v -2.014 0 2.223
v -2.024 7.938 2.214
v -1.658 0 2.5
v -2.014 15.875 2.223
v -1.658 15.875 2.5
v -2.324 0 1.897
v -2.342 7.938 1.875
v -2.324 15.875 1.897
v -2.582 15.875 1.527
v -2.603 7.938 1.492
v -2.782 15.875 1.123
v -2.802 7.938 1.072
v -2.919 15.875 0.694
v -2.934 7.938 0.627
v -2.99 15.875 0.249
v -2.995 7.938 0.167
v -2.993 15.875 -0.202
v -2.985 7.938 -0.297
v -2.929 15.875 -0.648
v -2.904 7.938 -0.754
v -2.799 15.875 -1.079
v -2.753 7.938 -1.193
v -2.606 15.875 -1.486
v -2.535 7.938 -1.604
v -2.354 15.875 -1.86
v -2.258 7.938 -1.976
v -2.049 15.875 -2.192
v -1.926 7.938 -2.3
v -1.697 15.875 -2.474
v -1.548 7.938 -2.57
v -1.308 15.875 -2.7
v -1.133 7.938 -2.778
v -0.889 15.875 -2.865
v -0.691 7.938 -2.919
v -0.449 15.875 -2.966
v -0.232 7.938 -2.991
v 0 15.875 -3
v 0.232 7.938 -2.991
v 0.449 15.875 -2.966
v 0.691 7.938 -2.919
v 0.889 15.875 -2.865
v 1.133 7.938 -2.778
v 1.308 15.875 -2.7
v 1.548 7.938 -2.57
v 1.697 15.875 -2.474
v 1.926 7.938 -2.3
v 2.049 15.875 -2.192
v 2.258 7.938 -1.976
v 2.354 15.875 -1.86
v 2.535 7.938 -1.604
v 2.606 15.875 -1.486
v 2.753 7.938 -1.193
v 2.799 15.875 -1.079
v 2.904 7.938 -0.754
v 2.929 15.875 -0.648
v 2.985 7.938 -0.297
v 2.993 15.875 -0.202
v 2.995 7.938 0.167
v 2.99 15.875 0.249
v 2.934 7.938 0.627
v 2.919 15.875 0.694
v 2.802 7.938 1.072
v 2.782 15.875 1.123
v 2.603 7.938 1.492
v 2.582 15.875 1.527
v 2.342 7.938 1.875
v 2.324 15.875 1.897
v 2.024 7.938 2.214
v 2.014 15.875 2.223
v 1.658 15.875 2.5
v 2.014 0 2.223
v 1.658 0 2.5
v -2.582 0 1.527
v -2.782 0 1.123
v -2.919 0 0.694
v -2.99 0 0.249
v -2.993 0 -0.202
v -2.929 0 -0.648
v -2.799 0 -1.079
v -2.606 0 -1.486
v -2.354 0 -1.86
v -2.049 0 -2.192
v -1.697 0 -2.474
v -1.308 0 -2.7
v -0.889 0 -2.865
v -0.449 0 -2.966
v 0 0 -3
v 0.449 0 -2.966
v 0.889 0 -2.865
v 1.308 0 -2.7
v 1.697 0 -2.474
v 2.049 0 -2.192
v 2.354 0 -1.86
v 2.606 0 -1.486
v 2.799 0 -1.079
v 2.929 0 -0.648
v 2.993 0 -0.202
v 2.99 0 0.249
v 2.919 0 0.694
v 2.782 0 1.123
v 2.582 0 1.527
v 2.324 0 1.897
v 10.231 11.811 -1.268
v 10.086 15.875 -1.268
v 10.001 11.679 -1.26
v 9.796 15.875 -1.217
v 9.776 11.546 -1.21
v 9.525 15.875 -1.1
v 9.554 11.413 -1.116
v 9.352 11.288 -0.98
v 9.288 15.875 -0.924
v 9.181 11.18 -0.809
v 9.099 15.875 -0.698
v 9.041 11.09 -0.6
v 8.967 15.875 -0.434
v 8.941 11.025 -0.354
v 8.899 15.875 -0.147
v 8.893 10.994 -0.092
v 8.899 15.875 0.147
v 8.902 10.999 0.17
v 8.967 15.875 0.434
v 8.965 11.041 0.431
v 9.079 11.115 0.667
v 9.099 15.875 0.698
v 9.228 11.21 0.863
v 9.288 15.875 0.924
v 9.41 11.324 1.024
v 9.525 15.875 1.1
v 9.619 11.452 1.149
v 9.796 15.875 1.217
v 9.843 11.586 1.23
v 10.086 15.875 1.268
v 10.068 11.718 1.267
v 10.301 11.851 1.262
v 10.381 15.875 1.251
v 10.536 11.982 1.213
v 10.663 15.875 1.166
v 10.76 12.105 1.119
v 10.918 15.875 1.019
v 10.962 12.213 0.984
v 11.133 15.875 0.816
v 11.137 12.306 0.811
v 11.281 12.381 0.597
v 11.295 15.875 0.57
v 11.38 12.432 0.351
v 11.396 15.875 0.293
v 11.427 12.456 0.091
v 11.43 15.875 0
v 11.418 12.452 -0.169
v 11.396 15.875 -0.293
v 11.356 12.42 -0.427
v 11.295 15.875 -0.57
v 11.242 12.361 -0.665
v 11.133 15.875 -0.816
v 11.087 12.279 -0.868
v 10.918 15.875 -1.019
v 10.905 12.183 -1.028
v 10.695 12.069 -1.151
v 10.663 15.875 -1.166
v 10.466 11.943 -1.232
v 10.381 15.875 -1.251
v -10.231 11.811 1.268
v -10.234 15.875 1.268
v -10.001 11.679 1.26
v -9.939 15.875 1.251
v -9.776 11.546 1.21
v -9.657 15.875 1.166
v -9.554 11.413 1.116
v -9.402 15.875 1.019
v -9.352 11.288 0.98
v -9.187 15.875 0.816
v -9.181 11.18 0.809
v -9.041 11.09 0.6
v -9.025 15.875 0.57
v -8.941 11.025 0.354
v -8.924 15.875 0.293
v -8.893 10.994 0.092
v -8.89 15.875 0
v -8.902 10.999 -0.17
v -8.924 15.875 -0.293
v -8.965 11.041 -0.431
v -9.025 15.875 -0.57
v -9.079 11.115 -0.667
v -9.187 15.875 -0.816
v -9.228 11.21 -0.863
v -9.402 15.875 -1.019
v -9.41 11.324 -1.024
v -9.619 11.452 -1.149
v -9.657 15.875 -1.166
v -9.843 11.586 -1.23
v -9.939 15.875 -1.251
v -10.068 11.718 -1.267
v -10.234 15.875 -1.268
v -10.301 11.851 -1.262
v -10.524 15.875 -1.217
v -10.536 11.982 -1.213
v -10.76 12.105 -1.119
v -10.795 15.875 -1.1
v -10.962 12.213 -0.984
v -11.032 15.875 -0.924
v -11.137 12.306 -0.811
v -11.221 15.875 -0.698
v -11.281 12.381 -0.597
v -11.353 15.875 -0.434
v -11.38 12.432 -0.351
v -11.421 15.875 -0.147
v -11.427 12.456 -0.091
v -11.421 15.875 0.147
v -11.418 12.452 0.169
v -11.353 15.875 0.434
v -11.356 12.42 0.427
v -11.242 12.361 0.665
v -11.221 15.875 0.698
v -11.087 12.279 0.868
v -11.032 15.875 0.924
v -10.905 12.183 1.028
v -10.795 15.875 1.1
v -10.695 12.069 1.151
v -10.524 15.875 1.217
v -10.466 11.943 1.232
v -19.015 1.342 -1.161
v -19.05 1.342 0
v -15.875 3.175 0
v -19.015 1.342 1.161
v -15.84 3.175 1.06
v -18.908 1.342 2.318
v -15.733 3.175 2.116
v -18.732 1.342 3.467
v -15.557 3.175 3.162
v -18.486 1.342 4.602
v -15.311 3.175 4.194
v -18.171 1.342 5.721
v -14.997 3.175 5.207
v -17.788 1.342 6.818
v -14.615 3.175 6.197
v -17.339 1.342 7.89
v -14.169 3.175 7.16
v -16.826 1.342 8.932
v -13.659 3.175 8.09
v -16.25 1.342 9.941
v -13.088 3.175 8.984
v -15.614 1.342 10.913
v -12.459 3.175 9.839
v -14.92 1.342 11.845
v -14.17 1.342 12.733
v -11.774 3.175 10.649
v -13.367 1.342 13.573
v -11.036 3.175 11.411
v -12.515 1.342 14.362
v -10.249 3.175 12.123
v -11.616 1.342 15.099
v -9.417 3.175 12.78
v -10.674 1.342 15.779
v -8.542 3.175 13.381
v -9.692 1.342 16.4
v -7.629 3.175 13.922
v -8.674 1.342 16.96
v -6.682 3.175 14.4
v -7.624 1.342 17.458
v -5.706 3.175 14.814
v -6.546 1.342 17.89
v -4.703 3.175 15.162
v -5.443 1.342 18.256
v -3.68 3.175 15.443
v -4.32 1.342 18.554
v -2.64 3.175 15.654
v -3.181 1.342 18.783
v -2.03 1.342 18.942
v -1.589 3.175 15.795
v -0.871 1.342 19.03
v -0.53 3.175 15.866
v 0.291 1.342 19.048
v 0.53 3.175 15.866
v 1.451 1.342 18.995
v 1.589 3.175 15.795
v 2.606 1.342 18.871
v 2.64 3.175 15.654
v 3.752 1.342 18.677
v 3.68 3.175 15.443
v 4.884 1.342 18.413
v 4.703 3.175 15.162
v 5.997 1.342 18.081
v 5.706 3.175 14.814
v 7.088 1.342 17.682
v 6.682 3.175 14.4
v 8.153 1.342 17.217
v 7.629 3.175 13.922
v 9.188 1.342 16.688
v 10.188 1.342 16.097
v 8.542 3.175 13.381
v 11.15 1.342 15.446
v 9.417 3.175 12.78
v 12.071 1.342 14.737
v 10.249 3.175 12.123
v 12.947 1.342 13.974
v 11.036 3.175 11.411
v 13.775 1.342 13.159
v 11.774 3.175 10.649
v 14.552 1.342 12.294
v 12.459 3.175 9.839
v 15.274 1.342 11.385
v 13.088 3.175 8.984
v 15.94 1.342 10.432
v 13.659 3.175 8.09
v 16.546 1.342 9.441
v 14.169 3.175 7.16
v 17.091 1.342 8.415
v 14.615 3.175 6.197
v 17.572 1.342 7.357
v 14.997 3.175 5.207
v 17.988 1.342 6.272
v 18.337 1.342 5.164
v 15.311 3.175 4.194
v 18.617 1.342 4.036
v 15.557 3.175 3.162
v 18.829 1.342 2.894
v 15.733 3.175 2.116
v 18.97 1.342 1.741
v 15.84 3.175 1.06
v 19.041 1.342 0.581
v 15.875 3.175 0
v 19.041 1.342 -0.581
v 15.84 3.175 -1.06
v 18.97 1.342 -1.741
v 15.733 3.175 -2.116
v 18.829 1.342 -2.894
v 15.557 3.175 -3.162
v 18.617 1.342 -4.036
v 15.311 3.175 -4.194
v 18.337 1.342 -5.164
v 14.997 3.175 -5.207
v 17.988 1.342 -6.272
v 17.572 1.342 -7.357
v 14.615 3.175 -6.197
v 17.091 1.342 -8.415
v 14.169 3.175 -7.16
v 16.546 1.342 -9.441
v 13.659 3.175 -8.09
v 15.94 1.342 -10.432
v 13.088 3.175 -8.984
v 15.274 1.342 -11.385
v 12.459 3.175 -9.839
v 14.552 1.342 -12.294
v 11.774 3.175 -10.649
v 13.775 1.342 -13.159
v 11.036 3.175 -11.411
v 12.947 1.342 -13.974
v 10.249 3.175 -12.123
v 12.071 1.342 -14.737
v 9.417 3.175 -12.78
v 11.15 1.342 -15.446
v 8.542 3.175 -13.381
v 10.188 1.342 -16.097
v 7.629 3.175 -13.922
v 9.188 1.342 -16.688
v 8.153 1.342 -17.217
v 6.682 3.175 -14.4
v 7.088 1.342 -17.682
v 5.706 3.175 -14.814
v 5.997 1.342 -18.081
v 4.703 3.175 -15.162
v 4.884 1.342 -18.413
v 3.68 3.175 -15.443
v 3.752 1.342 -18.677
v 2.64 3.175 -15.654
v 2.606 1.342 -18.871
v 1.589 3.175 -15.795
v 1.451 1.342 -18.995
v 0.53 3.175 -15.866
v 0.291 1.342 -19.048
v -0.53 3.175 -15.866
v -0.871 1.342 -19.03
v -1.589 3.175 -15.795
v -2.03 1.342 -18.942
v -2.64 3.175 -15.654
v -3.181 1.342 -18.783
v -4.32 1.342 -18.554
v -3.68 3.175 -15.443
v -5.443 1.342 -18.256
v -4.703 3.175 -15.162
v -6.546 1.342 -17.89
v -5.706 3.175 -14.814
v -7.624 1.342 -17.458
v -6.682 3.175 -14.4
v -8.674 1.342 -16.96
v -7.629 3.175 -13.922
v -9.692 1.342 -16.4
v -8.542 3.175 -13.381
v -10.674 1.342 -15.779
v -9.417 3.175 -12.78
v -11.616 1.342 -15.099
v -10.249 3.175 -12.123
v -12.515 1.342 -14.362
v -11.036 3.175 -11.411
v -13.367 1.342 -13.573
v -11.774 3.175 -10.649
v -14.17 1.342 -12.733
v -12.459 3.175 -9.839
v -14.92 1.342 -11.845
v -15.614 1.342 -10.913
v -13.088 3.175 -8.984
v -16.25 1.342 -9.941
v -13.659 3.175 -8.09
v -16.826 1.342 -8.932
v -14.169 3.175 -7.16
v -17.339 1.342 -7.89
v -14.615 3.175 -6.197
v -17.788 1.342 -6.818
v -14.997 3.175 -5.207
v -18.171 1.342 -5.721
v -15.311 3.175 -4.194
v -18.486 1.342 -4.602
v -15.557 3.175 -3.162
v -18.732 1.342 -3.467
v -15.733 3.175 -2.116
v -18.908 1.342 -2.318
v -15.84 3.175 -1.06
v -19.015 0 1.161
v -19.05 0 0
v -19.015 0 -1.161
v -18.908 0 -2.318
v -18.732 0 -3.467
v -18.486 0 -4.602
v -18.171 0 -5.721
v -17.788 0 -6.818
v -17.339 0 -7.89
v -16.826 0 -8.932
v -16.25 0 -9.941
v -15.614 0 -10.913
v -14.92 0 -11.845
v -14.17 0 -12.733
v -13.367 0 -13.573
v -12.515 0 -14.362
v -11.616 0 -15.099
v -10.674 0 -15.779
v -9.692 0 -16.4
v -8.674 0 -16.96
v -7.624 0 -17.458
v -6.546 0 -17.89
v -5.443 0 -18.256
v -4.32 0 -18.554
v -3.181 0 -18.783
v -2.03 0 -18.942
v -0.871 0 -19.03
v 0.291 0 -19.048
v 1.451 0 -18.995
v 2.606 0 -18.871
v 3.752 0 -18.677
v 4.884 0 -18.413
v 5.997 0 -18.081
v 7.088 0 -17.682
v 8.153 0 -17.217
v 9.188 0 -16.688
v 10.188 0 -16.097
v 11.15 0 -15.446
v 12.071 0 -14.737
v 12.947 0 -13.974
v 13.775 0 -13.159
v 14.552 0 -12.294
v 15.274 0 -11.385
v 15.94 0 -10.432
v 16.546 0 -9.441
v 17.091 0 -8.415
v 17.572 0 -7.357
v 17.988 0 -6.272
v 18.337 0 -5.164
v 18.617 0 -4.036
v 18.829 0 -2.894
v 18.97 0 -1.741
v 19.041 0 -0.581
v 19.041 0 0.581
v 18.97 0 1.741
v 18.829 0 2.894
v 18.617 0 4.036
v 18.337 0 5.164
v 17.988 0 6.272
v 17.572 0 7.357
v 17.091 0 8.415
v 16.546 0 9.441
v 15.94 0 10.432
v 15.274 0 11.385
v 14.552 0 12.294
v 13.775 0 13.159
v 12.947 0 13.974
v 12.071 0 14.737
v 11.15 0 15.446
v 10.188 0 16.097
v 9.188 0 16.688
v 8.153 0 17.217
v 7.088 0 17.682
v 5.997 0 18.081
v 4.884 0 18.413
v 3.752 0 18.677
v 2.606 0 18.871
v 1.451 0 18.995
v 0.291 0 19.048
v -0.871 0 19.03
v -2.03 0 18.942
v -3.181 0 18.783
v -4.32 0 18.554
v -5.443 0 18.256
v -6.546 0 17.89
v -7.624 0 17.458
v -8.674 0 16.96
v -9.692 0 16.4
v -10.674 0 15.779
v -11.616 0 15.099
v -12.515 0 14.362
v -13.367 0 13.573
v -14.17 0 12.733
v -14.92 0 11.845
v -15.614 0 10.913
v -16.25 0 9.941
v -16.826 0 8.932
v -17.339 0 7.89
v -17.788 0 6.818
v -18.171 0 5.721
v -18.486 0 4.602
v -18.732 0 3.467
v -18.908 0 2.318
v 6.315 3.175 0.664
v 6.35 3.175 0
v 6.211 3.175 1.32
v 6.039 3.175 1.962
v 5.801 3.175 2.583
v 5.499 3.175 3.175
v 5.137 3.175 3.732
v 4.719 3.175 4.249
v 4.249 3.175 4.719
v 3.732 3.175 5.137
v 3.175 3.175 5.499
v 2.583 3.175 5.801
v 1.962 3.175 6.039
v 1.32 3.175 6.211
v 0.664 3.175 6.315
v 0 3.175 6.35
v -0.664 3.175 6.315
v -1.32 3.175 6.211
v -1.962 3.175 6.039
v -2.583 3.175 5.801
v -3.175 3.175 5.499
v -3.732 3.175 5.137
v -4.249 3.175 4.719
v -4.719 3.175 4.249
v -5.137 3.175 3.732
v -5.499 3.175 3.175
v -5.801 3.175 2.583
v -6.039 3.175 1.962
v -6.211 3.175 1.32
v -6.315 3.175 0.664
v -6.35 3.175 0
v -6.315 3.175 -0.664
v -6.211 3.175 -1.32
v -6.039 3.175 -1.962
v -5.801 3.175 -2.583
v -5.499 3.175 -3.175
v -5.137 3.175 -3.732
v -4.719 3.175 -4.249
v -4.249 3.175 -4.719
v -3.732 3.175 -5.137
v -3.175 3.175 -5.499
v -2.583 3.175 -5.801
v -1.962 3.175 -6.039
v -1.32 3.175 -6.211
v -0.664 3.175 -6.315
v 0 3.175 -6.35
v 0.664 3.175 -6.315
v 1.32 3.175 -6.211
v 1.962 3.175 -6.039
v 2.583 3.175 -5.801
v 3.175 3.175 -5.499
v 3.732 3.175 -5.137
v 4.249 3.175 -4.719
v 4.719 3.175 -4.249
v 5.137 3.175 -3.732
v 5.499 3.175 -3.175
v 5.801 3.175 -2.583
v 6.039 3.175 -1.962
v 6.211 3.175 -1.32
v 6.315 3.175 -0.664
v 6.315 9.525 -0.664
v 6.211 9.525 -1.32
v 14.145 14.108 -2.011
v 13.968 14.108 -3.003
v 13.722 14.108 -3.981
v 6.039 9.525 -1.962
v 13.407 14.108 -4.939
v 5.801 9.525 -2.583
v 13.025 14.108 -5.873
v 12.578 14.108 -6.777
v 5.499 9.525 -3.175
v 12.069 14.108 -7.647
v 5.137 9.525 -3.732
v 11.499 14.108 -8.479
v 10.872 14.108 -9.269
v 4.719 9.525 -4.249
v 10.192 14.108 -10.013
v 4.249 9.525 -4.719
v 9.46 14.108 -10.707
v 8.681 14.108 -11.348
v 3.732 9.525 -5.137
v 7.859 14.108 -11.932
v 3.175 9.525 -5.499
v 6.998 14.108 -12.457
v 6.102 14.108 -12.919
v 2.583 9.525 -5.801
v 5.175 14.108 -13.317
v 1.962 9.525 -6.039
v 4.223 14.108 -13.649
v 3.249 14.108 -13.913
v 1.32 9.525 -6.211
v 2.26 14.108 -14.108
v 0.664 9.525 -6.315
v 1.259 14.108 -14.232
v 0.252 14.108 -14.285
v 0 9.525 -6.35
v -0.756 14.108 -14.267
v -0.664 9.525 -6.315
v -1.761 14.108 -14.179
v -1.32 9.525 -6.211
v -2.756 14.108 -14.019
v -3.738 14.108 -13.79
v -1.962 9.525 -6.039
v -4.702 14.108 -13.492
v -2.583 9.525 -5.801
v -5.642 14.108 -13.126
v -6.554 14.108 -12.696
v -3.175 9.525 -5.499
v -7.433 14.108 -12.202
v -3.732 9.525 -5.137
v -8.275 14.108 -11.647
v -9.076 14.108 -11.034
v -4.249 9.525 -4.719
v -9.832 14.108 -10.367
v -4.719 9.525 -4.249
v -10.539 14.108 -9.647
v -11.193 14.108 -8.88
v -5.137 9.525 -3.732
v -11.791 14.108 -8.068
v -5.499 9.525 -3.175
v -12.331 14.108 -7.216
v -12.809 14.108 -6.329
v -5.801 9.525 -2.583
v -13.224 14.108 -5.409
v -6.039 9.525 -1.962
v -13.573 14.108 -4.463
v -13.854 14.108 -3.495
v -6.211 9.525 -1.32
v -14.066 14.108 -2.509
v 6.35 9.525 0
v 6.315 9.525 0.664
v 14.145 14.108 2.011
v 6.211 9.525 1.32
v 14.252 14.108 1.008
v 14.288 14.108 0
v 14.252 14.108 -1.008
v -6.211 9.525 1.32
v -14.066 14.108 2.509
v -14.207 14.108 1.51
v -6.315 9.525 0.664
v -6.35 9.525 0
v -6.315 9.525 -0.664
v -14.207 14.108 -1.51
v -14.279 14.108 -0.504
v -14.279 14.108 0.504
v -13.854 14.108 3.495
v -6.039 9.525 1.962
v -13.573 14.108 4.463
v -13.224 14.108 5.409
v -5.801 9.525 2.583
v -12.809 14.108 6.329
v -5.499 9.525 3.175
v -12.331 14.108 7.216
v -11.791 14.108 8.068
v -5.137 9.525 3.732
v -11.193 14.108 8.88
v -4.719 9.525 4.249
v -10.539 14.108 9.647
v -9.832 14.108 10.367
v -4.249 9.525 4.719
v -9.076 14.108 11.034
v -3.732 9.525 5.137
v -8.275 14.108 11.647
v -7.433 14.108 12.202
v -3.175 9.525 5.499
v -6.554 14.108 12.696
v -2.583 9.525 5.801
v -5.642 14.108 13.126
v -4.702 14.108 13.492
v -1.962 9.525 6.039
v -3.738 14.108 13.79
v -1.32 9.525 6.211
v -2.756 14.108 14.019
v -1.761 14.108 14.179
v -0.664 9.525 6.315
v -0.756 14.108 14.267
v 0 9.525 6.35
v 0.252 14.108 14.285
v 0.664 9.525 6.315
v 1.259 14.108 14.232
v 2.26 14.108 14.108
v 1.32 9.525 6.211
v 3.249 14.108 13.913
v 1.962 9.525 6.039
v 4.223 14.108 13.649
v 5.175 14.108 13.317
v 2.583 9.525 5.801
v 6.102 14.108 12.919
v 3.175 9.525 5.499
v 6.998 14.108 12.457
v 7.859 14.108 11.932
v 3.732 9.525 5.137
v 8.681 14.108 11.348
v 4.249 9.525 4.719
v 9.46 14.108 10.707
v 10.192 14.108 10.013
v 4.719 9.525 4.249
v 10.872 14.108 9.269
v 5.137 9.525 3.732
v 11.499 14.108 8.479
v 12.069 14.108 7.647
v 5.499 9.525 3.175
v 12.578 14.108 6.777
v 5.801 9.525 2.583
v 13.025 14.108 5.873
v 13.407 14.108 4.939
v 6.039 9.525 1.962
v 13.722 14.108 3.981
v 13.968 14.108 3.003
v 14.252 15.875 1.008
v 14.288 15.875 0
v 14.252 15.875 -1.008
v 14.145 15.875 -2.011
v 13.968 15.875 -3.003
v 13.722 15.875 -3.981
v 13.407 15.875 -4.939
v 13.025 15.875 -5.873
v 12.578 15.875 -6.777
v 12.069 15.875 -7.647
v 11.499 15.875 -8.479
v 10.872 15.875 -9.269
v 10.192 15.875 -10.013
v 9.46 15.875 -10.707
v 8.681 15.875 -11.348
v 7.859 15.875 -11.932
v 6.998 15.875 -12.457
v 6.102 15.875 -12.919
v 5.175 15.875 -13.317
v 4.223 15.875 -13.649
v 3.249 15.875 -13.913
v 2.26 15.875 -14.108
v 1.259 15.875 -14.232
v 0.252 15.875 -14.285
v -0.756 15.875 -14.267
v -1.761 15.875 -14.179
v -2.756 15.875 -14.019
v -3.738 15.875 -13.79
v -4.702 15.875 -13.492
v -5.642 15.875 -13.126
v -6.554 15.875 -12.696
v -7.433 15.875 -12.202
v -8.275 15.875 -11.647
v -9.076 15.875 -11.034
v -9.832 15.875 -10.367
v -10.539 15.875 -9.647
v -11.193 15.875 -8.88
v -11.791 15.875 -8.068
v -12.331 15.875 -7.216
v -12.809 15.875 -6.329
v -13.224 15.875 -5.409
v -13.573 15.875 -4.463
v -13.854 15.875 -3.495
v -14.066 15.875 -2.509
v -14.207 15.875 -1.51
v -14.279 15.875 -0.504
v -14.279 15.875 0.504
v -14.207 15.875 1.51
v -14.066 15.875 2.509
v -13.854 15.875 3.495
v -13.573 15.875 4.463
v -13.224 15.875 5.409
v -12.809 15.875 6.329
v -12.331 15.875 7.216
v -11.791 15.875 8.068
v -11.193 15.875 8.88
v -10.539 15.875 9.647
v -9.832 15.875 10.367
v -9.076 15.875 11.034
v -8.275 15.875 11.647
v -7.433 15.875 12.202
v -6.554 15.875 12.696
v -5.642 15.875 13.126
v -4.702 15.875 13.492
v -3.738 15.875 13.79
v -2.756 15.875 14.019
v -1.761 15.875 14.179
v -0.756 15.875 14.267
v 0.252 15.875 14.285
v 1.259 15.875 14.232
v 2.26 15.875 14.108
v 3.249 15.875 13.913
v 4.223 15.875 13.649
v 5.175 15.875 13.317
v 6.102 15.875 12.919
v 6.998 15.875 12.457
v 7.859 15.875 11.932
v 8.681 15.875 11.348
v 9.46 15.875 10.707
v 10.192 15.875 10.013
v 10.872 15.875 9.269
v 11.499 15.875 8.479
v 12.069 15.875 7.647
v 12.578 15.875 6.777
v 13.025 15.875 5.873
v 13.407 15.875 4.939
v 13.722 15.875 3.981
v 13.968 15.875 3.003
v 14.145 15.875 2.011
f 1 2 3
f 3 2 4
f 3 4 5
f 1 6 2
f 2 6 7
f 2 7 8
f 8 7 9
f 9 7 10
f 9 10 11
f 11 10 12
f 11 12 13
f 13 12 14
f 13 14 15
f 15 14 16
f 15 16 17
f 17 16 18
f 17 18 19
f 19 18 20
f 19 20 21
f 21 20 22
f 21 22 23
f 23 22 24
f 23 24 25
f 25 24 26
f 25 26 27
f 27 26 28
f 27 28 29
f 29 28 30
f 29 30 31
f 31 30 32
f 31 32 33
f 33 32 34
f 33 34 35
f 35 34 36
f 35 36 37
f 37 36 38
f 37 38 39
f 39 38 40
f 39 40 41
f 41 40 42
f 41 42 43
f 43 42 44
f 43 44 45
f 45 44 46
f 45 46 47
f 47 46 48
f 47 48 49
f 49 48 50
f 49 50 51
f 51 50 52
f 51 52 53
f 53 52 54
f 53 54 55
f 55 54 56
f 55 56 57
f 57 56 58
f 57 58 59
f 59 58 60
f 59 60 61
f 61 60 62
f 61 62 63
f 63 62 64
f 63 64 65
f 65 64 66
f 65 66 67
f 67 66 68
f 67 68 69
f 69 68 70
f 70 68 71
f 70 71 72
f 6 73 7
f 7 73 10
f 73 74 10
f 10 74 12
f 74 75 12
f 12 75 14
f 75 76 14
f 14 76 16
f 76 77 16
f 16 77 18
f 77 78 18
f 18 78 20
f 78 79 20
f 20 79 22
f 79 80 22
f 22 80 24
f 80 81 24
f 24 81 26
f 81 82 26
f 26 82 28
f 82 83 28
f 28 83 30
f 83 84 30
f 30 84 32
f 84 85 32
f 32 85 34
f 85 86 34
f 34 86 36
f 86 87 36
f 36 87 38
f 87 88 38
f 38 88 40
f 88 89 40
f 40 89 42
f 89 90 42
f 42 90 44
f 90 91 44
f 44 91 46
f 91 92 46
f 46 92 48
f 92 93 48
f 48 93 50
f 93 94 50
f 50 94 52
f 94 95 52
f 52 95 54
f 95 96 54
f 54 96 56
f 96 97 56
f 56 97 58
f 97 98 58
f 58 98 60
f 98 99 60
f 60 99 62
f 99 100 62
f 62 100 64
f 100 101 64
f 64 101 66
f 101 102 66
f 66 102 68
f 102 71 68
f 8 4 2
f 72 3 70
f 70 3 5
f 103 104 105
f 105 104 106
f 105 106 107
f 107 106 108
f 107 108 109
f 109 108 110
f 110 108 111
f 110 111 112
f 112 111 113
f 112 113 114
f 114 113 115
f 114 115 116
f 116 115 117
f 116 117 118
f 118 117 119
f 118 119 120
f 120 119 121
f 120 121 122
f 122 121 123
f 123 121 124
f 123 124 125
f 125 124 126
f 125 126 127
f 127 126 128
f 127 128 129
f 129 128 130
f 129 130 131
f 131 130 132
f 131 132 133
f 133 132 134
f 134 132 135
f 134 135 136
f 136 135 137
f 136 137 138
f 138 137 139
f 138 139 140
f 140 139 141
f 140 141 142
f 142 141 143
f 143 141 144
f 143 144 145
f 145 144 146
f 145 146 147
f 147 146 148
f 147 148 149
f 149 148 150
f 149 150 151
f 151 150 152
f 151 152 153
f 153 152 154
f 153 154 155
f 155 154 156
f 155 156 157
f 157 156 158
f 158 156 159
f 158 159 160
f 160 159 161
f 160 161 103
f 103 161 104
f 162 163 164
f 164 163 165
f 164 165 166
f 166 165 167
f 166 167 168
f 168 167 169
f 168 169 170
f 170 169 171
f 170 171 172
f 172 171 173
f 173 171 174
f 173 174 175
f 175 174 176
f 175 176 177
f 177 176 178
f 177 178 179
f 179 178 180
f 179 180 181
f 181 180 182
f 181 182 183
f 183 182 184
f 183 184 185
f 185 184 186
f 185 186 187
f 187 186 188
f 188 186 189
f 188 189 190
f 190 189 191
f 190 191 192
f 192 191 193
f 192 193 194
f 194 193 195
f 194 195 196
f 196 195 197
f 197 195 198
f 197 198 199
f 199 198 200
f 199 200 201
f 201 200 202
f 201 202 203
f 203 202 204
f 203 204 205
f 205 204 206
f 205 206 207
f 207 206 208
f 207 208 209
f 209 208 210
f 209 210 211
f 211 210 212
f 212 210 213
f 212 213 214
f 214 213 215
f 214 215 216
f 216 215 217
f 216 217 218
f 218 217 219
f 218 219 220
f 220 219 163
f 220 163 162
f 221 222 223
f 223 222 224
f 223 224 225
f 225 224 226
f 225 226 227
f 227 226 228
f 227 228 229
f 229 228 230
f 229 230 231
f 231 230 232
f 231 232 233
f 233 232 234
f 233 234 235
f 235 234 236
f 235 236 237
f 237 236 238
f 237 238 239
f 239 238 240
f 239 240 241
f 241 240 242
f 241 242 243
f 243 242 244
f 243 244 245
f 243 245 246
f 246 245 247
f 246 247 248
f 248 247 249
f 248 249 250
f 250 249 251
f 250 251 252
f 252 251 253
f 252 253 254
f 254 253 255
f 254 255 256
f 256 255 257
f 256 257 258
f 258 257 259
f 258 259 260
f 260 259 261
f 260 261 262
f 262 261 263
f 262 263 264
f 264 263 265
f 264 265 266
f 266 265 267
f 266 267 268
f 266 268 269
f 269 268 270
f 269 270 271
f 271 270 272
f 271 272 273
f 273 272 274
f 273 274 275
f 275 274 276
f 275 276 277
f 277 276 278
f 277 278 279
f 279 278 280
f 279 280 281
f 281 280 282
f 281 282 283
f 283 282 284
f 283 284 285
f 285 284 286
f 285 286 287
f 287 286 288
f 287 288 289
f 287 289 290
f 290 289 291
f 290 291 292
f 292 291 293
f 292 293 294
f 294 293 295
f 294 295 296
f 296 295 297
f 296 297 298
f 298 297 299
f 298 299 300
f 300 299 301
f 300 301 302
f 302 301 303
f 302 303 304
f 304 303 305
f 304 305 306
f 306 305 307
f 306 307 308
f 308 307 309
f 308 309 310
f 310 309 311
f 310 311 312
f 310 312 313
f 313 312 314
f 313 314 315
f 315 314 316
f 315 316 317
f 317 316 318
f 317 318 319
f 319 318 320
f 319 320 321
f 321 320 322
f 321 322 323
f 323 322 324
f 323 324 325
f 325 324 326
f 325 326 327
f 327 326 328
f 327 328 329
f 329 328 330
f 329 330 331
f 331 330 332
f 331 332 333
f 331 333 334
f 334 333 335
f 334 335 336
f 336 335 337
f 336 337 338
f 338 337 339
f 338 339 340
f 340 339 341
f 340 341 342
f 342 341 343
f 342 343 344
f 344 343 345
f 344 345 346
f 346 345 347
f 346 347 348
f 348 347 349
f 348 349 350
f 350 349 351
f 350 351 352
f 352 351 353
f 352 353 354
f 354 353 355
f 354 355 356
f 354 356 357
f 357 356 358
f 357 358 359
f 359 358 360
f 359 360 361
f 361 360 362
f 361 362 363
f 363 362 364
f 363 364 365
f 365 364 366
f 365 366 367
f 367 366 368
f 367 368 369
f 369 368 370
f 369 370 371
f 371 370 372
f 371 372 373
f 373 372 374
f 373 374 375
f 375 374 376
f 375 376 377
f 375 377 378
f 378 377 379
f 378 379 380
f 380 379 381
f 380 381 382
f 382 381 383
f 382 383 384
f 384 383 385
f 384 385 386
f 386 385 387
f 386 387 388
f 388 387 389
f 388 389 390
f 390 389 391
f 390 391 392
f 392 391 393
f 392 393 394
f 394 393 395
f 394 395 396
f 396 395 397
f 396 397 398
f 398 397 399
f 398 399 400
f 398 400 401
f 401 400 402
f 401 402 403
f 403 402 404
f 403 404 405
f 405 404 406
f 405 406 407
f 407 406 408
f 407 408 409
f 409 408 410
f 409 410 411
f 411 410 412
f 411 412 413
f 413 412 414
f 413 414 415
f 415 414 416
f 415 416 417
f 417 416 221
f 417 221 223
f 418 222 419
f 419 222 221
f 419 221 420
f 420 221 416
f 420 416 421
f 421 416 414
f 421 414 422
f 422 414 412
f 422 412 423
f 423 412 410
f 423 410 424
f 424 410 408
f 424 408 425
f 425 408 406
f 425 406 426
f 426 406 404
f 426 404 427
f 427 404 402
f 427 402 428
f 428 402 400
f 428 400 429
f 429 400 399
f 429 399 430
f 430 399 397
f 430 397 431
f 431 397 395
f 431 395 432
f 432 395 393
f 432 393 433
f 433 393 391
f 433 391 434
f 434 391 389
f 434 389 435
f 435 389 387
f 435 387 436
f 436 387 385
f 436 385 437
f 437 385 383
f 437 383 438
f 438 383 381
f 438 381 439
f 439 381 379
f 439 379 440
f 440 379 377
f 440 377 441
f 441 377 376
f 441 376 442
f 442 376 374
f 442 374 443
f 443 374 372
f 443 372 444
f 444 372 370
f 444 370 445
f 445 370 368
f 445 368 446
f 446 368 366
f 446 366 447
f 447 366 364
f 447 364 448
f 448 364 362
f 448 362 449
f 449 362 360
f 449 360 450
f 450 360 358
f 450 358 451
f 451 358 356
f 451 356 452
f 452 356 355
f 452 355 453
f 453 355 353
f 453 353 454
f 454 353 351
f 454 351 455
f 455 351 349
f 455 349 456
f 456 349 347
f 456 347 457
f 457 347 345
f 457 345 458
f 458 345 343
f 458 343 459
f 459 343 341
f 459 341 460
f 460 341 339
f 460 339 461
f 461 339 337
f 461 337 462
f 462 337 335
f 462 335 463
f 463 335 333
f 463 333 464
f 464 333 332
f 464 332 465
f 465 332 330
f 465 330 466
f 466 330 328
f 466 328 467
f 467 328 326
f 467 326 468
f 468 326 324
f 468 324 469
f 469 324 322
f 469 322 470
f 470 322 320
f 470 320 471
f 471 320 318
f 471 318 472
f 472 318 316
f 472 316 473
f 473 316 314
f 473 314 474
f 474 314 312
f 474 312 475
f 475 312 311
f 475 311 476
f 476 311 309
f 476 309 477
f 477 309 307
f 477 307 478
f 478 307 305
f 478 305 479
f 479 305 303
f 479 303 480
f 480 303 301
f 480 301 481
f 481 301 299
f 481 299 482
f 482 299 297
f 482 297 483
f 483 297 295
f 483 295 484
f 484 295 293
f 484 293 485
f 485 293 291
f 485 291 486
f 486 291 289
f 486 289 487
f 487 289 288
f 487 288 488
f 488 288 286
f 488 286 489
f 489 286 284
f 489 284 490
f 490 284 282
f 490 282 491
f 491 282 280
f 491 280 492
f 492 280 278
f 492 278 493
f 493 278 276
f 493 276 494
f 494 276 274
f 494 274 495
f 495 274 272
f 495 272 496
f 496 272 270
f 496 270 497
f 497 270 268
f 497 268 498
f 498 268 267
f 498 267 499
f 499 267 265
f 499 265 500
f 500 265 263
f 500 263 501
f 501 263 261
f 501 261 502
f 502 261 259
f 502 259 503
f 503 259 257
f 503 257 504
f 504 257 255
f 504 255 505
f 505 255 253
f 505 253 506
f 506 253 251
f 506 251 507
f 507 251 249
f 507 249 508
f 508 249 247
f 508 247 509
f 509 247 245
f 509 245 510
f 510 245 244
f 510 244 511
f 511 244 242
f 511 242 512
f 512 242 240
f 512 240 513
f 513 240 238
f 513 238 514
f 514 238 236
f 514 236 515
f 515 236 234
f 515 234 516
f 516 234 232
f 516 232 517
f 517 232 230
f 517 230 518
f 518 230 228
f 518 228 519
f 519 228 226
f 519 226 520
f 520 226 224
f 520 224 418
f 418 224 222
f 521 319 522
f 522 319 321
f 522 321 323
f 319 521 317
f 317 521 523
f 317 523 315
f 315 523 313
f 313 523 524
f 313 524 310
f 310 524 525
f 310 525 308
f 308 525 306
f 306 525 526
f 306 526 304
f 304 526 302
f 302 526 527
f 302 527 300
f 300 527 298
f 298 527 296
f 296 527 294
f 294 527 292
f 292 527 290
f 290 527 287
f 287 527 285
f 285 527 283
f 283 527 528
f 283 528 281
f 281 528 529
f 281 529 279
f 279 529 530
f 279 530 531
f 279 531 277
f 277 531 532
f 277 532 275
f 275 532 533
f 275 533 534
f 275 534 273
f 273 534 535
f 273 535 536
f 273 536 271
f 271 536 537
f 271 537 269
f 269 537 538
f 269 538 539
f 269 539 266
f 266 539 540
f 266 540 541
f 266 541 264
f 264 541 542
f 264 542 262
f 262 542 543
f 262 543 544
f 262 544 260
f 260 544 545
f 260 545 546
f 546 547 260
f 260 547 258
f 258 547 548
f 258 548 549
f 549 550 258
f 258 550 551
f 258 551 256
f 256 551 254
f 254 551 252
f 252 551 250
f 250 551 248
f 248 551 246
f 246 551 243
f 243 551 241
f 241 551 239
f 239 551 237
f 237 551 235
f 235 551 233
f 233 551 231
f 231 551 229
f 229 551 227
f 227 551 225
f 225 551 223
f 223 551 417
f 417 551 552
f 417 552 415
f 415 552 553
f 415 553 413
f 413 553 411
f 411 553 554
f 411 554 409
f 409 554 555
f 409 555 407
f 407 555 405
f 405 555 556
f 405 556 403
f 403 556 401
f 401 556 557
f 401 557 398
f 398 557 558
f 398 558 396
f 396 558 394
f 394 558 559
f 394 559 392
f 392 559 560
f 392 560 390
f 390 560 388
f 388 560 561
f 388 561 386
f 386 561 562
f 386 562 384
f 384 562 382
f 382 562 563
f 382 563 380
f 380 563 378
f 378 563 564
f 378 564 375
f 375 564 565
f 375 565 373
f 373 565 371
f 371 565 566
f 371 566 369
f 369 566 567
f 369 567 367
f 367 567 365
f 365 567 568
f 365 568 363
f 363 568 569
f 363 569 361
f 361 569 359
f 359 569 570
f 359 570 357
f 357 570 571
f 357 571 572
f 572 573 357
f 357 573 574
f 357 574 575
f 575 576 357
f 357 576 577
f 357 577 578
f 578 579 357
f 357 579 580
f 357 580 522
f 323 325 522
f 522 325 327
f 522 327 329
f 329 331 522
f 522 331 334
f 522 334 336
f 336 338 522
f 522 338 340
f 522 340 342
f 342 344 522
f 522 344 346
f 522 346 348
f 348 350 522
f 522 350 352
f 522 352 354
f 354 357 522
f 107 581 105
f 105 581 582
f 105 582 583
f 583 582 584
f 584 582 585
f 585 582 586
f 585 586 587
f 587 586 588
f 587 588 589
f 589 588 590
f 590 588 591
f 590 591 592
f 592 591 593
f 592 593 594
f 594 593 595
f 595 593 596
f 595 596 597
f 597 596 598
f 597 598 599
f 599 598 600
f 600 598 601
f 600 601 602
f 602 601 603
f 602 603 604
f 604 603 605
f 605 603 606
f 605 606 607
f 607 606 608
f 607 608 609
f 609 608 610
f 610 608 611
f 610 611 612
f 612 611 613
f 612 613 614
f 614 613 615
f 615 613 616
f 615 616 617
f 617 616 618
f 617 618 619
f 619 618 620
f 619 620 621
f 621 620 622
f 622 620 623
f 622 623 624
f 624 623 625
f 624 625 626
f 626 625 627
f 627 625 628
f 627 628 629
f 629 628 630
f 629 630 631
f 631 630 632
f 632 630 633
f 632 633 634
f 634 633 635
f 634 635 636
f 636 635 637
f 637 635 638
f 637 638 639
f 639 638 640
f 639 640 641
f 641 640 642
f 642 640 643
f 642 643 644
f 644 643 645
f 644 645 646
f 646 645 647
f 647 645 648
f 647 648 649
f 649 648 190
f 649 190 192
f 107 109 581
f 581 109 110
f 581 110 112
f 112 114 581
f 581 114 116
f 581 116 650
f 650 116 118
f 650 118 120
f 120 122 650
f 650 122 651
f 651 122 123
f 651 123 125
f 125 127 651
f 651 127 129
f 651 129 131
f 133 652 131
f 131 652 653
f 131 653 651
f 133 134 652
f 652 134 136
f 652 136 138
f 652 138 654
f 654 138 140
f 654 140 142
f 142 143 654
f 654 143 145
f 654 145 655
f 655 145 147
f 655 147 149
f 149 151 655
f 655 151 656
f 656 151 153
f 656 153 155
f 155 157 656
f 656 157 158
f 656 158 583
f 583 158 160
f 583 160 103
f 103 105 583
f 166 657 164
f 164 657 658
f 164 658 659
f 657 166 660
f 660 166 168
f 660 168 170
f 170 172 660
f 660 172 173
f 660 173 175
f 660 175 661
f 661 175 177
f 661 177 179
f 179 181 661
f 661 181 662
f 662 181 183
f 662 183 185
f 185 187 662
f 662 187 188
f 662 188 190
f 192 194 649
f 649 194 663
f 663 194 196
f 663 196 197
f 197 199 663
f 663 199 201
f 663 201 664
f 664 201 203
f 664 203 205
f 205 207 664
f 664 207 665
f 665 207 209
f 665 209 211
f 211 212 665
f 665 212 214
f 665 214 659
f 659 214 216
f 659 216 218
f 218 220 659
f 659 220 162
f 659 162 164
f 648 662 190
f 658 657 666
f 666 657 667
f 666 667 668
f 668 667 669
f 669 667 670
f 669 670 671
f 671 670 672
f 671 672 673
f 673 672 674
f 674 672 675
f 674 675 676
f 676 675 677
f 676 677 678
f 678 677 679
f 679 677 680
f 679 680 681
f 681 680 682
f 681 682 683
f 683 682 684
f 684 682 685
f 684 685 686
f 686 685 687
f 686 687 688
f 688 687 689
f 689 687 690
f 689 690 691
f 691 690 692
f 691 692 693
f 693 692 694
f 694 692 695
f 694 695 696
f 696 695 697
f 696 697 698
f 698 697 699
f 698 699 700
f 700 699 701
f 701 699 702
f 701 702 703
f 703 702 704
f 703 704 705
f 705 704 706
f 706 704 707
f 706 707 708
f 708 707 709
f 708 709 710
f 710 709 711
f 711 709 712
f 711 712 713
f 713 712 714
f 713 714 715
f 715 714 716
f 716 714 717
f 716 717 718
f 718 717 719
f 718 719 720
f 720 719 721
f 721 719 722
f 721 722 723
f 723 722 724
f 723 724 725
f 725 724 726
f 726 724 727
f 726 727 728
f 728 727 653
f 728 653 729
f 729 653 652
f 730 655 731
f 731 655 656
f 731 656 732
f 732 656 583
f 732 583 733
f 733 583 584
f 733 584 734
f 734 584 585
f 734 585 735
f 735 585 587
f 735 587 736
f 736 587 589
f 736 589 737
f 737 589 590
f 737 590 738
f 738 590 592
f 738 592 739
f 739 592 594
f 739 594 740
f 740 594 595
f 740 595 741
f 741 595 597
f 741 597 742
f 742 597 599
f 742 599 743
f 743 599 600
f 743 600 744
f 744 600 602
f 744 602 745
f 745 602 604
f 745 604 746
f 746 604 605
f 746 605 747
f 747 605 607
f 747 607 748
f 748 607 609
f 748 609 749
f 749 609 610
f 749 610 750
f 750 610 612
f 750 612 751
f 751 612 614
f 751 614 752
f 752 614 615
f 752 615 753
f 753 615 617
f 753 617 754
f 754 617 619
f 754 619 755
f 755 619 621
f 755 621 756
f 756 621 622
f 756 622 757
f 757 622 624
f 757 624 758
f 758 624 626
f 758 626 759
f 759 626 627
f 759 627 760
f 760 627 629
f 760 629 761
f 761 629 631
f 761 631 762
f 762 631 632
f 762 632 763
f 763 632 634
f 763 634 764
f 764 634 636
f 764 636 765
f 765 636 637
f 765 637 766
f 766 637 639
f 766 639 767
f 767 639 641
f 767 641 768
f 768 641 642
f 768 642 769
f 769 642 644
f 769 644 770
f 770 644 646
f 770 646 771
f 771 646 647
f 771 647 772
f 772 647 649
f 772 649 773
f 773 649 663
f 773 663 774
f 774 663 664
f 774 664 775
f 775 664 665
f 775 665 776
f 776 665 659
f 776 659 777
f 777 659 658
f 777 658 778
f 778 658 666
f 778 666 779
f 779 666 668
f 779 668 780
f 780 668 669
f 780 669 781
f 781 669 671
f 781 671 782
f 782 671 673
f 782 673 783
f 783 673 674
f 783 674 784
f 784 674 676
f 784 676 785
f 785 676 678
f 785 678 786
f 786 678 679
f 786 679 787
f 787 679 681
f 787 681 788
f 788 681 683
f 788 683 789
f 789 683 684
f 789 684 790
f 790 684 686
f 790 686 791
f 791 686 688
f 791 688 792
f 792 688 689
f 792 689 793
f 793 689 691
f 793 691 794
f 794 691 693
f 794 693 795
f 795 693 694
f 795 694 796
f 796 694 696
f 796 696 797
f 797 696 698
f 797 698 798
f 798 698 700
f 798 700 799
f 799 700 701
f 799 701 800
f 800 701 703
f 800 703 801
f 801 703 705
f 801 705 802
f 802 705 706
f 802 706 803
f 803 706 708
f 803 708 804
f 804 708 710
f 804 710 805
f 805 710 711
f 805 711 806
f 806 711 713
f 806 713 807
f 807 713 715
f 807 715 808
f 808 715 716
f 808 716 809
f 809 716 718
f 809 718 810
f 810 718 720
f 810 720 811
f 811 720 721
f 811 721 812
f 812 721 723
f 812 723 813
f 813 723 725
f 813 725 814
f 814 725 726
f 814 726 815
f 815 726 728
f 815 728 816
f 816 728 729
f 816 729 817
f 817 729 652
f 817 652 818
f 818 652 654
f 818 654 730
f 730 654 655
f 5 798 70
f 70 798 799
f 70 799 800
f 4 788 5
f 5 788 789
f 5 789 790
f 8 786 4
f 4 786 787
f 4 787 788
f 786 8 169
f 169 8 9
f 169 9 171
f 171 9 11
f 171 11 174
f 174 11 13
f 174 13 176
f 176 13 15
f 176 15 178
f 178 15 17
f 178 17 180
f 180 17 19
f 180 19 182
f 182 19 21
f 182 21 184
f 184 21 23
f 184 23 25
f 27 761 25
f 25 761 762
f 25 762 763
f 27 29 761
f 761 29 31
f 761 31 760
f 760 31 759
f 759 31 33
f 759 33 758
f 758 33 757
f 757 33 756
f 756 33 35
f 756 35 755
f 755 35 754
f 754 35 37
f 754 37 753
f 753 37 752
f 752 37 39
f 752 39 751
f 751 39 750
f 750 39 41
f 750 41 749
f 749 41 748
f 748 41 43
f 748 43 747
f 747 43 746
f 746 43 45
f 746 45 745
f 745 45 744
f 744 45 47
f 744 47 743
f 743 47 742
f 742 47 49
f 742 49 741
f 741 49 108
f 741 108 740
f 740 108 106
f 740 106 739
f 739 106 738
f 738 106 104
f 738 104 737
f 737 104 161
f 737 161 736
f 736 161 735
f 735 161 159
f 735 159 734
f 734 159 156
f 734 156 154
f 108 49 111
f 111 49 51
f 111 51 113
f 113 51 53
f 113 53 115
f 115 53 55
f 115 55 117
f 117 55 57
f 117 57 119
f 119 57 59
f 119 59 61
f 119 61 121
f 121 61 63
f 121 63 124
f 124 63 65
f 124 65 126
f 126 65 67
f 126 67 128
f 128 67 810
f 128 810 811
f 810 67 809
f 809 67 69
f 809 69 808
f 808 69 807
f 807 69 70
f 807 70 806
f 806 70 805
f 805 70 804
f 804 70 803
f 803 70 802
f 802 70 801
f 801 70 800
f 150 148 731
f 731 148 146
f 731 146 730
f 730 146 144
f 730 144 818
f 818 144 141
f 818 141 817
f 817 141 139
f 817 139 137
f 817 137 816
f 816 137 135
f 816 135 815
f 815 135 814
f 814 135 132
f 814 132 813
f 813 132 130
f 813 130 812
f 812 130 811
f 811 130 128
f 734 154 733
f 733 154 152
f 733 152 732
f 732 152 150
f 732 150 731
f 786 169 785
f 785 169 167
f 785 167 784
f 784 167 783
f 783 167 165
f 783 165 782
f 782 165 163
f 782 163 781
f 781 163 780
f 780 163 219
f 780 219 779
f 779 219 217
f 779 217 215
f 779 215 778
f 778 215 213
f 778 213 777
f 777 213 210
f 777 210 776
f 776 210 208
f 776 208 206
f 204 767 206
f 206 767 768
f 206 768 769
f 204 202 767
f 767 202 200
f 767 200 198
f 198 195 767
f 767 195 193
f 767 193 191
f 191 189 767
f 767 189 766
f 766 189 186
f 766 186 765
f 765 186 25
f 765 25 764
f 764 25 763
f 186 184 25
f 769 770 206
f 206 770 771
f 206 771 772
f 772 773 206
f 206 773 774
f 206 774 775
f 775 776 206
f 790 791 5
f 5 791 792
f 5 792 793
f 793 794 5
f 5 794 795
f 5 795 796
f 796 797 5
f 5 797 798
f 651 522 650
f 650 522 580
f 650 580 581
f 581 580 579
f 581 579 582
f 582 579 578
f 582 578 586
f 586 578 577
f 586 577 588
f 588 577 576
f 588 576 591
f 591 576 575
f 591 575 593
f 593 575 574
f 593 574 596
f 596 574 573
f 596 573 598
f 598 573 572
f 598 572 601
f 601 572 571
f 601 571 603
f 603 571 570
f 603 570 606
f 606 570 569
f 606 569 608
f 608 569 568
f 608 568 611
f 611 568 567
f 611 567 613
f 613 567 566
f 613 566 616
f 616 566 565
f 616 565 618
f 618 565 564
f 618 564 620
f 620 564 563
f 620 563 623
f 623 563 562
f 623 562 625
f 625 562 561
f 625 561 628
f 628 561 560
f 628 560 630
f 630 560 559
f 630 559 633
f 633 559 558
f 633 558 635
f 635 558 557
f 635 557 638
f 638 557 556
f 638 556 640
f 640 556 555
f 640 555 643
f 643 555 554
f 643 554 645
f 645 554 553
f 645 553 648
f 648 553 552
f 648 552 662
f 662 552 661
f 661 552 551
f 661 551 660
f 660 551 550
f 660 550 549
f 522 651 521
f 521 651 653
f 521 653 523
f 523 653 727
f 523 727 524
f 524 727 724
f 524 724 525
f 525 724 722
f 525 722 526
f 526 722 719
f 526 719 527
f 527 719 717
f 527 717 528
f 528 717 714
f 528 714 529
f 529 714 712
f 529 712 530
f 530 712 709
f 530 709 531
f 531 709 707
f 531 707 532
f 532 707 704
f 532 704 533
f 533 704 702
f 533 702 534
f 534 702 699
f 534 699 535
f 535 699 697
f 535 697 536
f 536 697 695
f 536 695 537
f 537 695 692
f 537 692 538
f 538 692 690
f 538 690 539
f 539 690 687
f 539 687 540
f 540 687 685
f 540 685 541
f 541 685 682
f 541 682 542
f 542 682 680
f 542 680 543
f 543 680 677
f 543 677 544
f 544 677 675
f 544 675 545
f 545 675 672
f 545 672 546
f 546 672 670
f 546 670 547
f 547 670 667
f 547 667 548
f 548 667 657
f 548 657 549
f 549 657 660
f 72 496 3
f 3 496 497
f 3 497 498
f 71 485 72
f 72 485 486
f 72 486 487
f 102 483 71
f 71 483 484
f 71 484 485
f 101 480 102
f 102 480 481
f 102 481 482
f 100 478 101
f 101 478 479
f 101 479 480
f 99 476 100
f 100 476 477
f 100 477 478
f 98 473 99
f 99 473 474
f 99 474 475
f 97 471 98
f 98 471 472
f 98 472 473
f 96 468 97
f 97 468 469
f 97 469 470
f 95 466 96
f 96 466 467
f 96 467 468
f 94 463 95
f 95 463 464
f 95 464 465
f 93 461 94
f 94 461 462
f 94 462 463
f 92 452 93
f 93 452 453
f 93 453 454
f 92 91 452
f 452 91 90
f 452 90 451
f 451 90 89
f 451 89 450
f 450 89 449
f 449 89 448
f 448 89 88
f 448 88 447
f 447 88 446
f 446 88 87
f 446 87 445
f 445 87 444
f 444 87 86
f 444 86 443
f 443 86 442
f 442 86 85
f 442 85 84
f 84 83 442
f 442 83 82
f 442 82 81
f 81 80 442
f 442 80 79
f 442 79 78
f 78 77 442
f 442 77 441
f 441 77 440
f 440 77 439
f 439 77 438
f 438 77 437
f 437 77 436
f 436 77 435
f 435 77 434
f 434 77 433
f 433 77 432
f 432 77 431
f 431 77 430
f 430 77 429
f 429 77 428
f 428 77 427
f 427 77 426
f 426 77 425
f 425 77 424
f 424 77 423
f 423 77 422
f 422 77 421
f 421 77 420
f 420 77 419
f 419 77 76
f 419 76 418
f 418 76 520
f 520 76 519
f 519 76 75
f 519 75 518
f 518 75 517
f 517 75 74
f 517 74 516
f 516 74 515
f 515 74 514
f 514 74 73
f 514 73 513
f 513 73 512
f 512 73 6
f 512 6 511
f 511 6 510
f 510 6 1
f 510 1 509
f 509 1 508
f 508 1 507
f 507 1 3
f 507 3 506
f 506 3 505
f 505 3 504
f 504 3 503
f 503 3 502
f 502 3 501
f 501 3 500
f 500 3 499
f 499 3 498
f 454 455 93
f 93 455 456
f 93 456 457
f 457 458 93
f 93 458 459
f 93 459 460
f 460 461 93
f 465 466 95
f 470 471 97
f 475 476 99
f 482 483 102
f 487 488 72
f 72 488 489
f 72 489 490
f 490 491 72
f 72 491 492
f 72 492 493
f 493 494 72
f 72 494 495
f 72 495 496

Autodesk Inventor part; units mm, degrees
ref_plane "YZ Plane" through (0, 0, 0) normal (1, 0, 0) x (0, 1, 0)
ref_plane "XZ Plane" through (0, 0, 0) normal (0, 1, 0) x (-1, 0, 0)
ref_plane "XY Plane" through (0, 0, 0) normal (0, 0, 1) x (1, 0, 0)
sketch "Sketch1" plane through (0, 0, 0) normal (0, 1, 0) x (-1, 0, 0)
  circle A0 centre (0, 0) radius 19.05
  dimension "d0" = 38.1
extrude "Extrusion1" add sketch "Sketch1" along normal blind 3.175
sketch "Sketch2" plane through (0, 3.175, 0) normal (0, 1, 0) x (1, 0, 0)
  circle A0 centre (0, 0) radius 6.35
  dimension "d3" = 12.7
extrude "Extrusion2" add sketch "Sketch2" along normal blind 6.35
sketch "Sketch3" plane through (0, 9.525, 0) normal (0, 1, 0) x (1, 0, 0)
  circle A0 centre (0, 0) radius 14.2875
  dimension "d6" = 28.575
extrude "Extrusion3" add sketch "Sketch3" along normal blind 6.35
chamfer "Chamfer1" distance 7.9375 angle 30 1 edges at (-14.2875, 9.525, 0) measured on face at (11.4418, 9.525, 1.6463)
chamfer "Chamfer2" distance 3.175 angle 30 1 edges at (19.05, 3.175, 0) measured on face at (-14.6321, 3.175, -1.5197)
sketch "Sketch4" plane through (0, 15.875, 0) normal (0, 1, 0) x (1, 0, 0)
  circle A0 centre (-10.16, 0) radius 1.27
  circle A1 centre (10.16, 0) radius 1.27
  circle A2 centre (0, 0) radius 6.35 projected
  dimension "d15" = 2.54
  dimension "d16" = 10.16
  dimension "d17" = 10.16
extrude "Extrusion4" cut sketch "Sketch4" against normal up to surface (12.7 mm away) contours A0 | A1
sketch "Sketch5" plane through (0, 15.875, 0) normal (0, 1, 0) x (1, 0, 0)
  circle A0 centre (0, 0) radius 3
  line L0 (-1.6583, -2.5) -> (1.6583, -2.5)
  point P0 (0, 3)
  dimension "d20" = 6
  dimension "d21" = 5.5
extrude "Extrusion5" cut sketch "Sketch5" against normal through all contours A0 L0 picked at (0.1141, -0.6732)
equation "\"d17\" = d16"
properties part number "Pulley_3DPrint"
